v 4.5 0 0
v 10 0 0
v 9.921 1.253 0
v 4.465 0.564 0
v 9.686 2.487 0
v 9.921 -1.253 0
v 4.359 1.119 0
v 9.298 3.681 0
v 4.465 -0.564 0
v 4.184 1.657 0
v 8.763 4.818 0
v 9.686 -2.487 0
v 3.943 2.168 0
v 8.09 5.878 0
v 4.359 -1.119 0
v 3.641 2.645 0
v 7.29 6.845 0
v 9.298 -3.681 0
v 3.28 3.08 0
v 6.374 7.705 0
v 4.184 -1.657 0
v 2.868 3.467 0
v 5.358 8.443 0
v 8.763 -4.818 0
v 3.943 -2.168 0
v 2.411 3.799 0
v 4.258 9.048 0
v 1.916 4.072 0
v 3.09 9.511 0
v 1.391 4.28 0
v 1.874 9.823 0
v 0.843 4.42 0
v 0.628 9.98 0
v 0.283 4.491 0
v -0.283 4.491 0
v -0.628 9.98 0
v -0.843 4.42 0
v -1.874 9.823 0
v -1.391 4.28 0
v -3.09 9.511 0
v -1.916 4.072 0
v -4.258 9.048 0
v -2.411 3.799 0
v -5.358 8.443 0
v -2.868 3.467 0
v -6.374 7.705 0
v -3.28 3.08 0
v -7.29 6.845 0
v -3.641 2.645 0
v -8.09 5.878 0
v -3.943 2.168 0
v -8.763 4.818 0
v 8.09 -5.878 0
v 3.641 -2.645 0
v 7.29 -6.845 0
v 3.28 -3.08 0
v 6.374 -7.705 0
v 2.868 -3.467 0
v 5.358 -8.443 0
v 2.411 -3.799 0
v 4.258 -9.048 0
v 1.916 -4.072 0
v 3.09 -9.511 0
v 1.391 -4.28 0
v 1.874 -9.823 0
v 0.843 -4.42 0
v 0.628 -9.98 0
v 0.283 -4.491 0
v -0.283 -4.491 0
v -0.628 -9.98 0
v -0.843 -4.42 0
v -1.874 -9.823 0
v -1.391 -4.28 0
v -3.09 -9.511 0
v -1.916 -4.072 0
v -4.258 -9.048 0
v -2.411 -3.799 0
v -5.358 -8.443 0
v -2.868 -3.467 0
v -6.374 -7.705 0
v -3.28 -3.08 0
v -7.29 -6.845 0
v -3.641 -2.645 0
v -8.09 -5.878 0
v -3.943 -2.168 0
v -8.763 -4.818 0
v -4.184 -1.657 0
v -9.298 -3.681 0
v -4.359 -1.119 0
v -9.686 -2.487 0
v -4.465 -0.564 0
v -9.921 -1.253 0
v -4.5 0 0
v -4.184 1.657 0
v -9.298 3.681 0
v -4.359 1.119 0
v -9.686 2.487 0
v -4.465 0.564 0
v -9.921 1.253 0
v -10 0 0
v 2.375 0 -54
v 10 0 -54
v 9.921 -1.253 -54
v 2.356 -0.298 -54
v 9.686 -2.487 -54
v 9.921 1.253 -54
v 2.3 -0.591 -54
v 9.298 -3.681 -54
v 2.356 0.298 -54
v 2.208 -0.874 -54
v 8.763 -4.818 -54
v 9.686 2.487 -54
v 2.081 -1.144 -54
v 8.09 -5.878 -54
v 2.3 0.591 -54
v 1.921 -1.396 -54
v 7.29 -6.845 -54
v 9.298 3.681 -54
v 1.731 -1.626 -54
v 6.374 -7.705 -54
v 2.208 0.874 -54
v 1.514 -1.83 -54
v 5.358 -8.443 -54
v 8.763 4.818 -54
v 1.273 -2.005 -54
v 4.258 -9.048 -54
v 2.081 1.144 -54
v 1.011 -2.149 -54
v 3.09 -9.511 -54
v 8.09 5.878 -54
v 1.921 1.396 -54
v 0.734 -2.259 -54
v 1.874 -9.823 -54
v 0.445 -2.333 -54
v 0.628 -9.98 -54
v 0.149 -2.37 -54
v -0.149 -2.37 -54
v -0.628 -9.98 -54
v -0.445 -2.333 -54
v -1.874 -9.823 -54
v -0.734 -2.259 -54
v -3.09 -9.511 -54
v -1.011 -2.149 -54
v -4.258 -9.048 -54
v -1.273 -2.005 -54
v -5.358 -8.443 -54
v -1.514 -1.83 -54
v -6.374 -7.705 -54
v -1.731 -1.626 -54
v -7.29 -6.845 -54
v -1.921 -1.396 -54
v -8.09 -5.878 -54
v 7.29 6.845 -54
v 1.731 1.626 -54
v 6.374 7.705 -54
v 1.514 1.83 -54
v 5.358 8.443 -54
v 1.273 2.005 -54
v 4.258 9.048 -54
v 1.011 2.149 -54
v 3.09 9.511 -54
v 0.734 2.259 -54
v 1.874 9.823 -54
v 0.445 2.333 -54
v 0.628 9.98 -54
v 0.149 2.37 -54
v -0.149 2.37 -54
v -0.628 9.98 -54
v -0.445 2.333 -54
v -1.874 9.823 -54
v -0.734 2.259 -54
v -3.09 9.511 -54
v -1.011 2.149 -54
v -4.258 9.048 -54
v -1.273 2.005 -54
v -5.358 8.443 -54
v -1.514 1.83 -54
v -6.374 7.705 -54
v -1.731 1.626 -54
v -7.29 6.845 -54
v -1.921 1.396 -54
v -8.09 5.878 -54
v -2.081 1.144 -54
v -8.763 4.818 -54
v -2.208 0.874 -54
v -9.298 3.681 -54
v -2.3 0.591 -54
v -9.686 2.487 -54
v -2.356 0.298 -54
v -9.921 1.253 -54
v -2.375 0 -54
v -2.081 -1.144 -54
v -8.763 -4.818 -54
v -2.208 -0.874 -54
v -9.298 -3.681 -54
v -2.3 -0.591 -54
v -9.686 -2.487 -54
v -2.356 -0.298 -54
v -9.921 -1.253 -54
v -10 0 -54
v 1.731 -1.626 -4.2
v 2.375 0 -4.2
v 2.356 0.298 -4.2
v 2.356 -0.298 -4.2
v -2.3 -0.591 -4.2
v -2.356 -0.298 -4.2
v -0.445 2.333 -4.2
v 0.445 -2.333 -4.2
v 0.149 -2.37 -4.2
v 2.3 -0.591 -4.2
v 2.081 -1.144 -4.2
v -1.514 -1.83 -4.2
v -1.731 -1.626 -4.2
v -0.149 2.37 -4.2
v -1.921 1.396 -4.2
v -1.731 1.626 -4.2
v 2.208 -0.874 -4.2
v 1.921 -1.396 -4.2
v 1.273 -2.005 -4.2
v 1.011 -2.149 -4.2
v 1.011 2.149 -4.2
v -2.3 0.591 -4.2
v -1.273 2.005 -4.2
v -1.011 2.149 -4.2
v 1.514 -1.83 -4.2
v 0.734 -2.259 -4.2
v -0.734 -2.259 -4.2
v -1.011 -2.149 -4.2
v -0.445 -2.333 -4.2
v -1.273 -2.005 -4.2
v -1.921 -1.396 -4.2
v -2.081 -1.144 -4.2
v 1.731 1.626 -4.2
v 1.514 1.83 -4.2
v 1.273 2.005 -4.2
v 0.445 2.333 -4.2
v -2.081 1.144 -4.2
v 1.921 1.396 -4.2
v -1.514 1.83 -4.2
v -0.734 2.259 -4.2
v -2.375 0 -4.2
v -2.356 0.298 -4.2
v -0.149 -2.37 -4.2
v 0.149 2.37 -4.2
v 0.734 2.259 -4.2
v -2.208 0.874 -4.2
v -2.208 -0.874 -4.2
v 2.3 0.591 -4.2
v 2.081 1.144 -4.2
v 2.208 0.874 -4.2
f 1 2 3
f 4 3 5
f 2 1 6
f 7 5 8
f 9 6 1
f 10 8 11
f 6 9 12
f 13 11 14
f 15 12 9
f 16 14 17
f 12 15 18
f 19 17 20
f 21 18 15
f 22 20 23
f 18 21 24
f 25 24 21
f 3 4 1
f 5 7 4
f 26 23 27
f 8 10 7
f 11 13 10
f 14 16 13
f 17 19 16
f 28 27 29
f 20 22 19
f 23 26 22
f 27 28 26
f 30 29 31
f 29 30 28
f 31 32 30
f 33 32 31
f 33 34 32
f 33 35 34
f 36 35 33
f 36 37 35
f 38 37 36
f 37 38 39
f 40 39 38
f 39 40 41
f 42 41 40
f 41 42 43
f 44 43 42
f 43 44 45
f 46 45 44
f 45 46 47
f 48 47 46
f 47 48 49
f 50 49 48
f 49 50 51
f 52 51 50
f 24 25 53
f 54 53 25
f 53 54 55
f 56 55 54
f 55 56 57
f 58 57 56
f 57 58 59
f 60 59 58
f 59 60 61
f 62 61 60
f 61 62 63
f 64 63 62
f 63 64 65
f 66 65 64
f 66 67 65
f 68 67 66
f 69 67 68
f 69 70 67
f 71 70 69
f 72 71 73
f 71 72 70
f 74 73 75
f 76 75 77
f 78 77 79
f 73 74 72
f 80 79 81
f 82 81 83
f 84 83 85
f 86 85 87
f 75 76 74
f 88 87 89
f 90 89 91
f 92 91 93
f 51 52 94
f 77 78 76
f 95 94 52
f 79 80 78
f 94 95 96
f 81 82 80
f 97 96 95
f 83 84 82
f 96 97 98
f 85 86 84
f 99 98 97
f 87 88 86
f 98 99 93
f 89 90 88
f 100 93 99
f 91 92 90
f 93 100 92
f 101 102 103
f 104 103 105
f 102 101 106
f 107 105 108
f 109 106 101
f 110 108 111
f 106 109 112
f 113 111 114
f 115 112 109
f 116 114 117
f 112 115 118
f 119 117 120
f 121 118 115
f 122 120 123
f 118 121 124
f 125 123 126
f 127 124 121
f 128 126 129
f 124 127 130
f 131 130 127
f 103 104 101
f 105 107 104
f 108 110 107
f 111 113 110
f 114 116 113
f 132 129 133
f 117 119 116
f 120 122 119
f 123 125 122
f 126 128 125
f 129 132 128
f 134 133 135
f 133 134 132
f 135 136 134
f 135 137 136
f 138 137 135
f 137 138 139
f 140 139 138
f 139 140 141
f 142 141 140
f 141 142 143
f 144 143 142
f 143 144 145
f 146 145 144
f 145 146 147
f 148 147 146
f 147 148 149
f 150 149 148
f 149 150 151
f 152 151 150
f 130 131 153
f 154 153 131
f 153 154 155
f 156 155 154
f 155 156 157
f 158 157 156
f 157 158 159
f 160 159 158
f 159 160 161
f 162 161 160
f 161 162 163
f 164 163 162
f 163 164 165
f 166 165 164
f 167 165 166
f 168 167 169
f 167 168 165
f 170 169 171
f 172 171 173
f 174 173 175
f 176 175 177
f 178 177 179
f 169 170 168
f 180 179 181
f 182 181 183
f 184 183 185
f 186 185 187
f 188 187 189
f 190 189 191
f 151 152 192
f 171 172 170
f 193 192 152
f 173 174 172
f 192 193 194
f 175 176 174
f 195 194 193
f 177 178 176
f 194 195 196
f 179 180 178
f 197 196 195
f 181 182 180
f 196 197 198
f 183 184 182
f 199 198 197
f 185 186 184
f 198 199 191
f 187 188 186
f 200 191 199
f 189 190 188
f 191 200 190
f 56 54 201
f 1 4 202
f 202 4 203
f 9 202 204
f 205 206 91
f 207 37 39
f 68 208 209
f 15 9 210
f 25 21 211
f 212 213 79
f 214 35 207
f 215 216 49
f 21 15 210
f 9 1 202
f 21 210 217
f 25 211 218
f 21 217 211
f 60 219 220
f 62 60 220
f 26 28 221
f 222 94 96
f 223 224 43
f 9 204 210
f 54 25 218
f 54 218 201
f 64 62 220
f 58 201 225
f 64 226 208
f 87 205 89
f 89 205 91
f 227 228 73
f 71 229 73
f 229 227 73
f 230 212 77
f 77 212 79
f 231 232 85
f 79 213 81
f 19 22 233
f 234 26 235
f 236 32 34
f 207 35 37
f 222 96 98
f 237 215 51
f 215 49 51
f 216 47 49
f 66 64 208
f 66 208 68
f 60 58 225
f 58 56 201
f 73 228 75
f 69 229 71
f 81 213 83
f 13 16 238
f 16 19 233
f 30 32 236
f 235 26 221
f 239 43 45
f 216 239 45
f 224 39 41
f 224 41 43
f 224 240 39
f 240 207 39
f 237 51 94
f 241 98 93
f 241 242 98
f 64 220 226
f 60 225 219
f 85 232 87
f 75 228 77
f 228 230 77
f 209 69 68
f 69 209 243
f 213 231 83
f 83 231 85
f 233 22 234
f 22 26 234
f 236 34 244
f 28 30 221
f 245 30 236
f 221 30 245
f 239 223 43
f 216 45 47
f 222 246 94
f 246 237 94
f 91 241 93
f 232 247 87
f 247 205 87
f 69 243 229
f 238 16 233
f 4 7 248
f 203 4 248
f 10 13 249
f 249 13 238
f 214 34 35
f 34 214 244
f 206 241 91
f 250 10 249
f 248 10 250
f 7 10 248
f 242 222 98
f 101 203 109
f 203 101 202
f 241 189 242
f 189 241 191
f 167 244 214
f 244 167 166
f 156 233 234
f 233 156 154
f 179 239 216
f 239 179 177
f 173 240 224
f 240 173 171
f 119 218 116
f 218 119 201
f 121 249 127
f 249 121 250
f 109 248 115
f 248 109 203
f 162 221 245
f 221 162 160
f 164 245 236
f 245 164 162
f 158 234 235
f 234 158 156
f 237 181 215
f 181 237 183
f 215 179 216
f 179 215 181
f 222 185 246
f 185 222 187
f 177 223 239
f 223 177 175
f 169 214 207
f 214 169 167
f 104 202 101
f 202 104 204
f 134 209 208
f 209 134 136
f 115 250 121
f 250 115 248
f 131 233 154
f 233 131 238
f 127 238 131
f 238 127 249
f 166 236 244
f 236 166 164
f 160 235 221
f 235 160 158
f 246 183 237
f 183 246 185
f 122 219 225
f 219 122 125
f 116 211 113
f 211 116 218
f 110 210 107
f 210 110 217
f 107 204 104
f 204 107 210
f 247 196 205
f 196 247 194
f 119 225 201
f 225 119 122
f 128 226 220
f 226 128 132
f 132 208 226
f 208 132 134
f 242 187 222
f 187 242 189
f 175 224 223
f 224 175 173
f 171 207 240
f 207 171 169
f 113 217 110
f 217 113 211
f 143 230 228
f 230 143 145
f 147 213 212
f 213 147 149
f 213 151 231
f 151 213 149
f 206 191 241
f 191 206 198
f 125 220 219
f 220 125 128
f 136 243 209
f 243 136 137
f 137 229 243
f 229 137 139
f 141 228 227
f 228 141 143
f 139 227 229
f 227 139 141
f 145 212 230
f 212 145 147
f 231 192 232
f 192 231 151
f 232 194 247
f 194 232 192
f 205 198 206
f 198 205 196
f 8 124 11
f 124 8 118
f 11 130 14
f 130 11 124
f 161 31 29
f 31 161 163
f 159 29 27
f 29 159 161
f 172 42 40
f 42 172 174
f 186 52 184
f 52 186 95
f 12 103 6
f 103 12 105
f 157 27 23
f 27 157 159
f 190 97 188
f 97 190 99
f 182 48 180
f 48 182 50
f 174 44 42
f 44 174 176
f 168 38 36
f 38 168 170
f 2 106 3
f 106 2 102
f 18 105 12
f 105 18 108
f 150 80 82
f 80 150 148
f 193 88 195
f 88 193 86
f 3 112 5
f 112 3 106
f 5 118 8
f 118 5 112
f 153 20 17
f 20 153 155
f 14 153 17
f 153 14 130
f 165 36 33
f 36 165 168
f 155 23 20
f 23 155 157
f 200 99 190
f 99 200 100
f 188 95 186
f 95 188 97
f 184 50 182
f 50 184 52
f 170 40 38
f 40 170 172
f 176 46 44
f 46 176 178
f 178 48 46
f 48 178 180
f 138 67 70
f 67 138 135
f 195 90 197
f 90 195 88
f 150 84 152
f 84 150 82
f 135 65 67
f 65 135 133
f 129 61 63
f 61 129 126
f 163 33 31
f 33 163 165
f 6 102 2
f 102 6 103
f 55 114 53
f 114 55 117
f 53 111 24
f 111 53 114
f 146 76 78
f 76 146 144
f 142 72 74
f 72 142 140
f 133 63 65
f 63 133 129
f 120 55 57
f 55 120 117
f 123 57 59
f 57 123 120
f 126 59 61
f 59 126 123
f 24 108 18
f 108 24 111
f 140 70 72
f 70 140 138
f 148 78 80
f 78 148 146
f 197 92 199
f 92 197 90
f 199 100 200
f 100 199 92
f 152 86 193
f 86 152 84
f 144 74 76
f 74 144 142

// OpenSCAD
$fn = 50;


difference() {
	union() {
		translate(v = [0, 0, -54.0000000000]) {
			cylinder(h = 54, r = 10.0000000000);
		}
		cylinder(h = 0, r = 20.0000000000);
	}
	union() {
		translate(v = [0, 0, 0]) {
			rotate(a = [0, 0, 0]) {
				difference() {
					union() {
						#translate(v = [0, 0, -54.0000000000]) {
							cylinder(h = 54, r = 2.2500000000);
						}
						#translate(v = [0, 0, -4.2000000000]) {
							cylinder(h = 4.2000000000, r1 = 2.3750000000, r2 = 4.5000000000);
						}
						#translate(v = [0, 0, -54.0000000000]) {
							cylinder(h = 54, r = 2.3750000000);
						}
						#translate(v = [0, 0, -54.0000000000]) {
							cylinder(h = 54, r = 2.2500000000);
						}
					}
					union();
				}
			}
		}
	}
}
